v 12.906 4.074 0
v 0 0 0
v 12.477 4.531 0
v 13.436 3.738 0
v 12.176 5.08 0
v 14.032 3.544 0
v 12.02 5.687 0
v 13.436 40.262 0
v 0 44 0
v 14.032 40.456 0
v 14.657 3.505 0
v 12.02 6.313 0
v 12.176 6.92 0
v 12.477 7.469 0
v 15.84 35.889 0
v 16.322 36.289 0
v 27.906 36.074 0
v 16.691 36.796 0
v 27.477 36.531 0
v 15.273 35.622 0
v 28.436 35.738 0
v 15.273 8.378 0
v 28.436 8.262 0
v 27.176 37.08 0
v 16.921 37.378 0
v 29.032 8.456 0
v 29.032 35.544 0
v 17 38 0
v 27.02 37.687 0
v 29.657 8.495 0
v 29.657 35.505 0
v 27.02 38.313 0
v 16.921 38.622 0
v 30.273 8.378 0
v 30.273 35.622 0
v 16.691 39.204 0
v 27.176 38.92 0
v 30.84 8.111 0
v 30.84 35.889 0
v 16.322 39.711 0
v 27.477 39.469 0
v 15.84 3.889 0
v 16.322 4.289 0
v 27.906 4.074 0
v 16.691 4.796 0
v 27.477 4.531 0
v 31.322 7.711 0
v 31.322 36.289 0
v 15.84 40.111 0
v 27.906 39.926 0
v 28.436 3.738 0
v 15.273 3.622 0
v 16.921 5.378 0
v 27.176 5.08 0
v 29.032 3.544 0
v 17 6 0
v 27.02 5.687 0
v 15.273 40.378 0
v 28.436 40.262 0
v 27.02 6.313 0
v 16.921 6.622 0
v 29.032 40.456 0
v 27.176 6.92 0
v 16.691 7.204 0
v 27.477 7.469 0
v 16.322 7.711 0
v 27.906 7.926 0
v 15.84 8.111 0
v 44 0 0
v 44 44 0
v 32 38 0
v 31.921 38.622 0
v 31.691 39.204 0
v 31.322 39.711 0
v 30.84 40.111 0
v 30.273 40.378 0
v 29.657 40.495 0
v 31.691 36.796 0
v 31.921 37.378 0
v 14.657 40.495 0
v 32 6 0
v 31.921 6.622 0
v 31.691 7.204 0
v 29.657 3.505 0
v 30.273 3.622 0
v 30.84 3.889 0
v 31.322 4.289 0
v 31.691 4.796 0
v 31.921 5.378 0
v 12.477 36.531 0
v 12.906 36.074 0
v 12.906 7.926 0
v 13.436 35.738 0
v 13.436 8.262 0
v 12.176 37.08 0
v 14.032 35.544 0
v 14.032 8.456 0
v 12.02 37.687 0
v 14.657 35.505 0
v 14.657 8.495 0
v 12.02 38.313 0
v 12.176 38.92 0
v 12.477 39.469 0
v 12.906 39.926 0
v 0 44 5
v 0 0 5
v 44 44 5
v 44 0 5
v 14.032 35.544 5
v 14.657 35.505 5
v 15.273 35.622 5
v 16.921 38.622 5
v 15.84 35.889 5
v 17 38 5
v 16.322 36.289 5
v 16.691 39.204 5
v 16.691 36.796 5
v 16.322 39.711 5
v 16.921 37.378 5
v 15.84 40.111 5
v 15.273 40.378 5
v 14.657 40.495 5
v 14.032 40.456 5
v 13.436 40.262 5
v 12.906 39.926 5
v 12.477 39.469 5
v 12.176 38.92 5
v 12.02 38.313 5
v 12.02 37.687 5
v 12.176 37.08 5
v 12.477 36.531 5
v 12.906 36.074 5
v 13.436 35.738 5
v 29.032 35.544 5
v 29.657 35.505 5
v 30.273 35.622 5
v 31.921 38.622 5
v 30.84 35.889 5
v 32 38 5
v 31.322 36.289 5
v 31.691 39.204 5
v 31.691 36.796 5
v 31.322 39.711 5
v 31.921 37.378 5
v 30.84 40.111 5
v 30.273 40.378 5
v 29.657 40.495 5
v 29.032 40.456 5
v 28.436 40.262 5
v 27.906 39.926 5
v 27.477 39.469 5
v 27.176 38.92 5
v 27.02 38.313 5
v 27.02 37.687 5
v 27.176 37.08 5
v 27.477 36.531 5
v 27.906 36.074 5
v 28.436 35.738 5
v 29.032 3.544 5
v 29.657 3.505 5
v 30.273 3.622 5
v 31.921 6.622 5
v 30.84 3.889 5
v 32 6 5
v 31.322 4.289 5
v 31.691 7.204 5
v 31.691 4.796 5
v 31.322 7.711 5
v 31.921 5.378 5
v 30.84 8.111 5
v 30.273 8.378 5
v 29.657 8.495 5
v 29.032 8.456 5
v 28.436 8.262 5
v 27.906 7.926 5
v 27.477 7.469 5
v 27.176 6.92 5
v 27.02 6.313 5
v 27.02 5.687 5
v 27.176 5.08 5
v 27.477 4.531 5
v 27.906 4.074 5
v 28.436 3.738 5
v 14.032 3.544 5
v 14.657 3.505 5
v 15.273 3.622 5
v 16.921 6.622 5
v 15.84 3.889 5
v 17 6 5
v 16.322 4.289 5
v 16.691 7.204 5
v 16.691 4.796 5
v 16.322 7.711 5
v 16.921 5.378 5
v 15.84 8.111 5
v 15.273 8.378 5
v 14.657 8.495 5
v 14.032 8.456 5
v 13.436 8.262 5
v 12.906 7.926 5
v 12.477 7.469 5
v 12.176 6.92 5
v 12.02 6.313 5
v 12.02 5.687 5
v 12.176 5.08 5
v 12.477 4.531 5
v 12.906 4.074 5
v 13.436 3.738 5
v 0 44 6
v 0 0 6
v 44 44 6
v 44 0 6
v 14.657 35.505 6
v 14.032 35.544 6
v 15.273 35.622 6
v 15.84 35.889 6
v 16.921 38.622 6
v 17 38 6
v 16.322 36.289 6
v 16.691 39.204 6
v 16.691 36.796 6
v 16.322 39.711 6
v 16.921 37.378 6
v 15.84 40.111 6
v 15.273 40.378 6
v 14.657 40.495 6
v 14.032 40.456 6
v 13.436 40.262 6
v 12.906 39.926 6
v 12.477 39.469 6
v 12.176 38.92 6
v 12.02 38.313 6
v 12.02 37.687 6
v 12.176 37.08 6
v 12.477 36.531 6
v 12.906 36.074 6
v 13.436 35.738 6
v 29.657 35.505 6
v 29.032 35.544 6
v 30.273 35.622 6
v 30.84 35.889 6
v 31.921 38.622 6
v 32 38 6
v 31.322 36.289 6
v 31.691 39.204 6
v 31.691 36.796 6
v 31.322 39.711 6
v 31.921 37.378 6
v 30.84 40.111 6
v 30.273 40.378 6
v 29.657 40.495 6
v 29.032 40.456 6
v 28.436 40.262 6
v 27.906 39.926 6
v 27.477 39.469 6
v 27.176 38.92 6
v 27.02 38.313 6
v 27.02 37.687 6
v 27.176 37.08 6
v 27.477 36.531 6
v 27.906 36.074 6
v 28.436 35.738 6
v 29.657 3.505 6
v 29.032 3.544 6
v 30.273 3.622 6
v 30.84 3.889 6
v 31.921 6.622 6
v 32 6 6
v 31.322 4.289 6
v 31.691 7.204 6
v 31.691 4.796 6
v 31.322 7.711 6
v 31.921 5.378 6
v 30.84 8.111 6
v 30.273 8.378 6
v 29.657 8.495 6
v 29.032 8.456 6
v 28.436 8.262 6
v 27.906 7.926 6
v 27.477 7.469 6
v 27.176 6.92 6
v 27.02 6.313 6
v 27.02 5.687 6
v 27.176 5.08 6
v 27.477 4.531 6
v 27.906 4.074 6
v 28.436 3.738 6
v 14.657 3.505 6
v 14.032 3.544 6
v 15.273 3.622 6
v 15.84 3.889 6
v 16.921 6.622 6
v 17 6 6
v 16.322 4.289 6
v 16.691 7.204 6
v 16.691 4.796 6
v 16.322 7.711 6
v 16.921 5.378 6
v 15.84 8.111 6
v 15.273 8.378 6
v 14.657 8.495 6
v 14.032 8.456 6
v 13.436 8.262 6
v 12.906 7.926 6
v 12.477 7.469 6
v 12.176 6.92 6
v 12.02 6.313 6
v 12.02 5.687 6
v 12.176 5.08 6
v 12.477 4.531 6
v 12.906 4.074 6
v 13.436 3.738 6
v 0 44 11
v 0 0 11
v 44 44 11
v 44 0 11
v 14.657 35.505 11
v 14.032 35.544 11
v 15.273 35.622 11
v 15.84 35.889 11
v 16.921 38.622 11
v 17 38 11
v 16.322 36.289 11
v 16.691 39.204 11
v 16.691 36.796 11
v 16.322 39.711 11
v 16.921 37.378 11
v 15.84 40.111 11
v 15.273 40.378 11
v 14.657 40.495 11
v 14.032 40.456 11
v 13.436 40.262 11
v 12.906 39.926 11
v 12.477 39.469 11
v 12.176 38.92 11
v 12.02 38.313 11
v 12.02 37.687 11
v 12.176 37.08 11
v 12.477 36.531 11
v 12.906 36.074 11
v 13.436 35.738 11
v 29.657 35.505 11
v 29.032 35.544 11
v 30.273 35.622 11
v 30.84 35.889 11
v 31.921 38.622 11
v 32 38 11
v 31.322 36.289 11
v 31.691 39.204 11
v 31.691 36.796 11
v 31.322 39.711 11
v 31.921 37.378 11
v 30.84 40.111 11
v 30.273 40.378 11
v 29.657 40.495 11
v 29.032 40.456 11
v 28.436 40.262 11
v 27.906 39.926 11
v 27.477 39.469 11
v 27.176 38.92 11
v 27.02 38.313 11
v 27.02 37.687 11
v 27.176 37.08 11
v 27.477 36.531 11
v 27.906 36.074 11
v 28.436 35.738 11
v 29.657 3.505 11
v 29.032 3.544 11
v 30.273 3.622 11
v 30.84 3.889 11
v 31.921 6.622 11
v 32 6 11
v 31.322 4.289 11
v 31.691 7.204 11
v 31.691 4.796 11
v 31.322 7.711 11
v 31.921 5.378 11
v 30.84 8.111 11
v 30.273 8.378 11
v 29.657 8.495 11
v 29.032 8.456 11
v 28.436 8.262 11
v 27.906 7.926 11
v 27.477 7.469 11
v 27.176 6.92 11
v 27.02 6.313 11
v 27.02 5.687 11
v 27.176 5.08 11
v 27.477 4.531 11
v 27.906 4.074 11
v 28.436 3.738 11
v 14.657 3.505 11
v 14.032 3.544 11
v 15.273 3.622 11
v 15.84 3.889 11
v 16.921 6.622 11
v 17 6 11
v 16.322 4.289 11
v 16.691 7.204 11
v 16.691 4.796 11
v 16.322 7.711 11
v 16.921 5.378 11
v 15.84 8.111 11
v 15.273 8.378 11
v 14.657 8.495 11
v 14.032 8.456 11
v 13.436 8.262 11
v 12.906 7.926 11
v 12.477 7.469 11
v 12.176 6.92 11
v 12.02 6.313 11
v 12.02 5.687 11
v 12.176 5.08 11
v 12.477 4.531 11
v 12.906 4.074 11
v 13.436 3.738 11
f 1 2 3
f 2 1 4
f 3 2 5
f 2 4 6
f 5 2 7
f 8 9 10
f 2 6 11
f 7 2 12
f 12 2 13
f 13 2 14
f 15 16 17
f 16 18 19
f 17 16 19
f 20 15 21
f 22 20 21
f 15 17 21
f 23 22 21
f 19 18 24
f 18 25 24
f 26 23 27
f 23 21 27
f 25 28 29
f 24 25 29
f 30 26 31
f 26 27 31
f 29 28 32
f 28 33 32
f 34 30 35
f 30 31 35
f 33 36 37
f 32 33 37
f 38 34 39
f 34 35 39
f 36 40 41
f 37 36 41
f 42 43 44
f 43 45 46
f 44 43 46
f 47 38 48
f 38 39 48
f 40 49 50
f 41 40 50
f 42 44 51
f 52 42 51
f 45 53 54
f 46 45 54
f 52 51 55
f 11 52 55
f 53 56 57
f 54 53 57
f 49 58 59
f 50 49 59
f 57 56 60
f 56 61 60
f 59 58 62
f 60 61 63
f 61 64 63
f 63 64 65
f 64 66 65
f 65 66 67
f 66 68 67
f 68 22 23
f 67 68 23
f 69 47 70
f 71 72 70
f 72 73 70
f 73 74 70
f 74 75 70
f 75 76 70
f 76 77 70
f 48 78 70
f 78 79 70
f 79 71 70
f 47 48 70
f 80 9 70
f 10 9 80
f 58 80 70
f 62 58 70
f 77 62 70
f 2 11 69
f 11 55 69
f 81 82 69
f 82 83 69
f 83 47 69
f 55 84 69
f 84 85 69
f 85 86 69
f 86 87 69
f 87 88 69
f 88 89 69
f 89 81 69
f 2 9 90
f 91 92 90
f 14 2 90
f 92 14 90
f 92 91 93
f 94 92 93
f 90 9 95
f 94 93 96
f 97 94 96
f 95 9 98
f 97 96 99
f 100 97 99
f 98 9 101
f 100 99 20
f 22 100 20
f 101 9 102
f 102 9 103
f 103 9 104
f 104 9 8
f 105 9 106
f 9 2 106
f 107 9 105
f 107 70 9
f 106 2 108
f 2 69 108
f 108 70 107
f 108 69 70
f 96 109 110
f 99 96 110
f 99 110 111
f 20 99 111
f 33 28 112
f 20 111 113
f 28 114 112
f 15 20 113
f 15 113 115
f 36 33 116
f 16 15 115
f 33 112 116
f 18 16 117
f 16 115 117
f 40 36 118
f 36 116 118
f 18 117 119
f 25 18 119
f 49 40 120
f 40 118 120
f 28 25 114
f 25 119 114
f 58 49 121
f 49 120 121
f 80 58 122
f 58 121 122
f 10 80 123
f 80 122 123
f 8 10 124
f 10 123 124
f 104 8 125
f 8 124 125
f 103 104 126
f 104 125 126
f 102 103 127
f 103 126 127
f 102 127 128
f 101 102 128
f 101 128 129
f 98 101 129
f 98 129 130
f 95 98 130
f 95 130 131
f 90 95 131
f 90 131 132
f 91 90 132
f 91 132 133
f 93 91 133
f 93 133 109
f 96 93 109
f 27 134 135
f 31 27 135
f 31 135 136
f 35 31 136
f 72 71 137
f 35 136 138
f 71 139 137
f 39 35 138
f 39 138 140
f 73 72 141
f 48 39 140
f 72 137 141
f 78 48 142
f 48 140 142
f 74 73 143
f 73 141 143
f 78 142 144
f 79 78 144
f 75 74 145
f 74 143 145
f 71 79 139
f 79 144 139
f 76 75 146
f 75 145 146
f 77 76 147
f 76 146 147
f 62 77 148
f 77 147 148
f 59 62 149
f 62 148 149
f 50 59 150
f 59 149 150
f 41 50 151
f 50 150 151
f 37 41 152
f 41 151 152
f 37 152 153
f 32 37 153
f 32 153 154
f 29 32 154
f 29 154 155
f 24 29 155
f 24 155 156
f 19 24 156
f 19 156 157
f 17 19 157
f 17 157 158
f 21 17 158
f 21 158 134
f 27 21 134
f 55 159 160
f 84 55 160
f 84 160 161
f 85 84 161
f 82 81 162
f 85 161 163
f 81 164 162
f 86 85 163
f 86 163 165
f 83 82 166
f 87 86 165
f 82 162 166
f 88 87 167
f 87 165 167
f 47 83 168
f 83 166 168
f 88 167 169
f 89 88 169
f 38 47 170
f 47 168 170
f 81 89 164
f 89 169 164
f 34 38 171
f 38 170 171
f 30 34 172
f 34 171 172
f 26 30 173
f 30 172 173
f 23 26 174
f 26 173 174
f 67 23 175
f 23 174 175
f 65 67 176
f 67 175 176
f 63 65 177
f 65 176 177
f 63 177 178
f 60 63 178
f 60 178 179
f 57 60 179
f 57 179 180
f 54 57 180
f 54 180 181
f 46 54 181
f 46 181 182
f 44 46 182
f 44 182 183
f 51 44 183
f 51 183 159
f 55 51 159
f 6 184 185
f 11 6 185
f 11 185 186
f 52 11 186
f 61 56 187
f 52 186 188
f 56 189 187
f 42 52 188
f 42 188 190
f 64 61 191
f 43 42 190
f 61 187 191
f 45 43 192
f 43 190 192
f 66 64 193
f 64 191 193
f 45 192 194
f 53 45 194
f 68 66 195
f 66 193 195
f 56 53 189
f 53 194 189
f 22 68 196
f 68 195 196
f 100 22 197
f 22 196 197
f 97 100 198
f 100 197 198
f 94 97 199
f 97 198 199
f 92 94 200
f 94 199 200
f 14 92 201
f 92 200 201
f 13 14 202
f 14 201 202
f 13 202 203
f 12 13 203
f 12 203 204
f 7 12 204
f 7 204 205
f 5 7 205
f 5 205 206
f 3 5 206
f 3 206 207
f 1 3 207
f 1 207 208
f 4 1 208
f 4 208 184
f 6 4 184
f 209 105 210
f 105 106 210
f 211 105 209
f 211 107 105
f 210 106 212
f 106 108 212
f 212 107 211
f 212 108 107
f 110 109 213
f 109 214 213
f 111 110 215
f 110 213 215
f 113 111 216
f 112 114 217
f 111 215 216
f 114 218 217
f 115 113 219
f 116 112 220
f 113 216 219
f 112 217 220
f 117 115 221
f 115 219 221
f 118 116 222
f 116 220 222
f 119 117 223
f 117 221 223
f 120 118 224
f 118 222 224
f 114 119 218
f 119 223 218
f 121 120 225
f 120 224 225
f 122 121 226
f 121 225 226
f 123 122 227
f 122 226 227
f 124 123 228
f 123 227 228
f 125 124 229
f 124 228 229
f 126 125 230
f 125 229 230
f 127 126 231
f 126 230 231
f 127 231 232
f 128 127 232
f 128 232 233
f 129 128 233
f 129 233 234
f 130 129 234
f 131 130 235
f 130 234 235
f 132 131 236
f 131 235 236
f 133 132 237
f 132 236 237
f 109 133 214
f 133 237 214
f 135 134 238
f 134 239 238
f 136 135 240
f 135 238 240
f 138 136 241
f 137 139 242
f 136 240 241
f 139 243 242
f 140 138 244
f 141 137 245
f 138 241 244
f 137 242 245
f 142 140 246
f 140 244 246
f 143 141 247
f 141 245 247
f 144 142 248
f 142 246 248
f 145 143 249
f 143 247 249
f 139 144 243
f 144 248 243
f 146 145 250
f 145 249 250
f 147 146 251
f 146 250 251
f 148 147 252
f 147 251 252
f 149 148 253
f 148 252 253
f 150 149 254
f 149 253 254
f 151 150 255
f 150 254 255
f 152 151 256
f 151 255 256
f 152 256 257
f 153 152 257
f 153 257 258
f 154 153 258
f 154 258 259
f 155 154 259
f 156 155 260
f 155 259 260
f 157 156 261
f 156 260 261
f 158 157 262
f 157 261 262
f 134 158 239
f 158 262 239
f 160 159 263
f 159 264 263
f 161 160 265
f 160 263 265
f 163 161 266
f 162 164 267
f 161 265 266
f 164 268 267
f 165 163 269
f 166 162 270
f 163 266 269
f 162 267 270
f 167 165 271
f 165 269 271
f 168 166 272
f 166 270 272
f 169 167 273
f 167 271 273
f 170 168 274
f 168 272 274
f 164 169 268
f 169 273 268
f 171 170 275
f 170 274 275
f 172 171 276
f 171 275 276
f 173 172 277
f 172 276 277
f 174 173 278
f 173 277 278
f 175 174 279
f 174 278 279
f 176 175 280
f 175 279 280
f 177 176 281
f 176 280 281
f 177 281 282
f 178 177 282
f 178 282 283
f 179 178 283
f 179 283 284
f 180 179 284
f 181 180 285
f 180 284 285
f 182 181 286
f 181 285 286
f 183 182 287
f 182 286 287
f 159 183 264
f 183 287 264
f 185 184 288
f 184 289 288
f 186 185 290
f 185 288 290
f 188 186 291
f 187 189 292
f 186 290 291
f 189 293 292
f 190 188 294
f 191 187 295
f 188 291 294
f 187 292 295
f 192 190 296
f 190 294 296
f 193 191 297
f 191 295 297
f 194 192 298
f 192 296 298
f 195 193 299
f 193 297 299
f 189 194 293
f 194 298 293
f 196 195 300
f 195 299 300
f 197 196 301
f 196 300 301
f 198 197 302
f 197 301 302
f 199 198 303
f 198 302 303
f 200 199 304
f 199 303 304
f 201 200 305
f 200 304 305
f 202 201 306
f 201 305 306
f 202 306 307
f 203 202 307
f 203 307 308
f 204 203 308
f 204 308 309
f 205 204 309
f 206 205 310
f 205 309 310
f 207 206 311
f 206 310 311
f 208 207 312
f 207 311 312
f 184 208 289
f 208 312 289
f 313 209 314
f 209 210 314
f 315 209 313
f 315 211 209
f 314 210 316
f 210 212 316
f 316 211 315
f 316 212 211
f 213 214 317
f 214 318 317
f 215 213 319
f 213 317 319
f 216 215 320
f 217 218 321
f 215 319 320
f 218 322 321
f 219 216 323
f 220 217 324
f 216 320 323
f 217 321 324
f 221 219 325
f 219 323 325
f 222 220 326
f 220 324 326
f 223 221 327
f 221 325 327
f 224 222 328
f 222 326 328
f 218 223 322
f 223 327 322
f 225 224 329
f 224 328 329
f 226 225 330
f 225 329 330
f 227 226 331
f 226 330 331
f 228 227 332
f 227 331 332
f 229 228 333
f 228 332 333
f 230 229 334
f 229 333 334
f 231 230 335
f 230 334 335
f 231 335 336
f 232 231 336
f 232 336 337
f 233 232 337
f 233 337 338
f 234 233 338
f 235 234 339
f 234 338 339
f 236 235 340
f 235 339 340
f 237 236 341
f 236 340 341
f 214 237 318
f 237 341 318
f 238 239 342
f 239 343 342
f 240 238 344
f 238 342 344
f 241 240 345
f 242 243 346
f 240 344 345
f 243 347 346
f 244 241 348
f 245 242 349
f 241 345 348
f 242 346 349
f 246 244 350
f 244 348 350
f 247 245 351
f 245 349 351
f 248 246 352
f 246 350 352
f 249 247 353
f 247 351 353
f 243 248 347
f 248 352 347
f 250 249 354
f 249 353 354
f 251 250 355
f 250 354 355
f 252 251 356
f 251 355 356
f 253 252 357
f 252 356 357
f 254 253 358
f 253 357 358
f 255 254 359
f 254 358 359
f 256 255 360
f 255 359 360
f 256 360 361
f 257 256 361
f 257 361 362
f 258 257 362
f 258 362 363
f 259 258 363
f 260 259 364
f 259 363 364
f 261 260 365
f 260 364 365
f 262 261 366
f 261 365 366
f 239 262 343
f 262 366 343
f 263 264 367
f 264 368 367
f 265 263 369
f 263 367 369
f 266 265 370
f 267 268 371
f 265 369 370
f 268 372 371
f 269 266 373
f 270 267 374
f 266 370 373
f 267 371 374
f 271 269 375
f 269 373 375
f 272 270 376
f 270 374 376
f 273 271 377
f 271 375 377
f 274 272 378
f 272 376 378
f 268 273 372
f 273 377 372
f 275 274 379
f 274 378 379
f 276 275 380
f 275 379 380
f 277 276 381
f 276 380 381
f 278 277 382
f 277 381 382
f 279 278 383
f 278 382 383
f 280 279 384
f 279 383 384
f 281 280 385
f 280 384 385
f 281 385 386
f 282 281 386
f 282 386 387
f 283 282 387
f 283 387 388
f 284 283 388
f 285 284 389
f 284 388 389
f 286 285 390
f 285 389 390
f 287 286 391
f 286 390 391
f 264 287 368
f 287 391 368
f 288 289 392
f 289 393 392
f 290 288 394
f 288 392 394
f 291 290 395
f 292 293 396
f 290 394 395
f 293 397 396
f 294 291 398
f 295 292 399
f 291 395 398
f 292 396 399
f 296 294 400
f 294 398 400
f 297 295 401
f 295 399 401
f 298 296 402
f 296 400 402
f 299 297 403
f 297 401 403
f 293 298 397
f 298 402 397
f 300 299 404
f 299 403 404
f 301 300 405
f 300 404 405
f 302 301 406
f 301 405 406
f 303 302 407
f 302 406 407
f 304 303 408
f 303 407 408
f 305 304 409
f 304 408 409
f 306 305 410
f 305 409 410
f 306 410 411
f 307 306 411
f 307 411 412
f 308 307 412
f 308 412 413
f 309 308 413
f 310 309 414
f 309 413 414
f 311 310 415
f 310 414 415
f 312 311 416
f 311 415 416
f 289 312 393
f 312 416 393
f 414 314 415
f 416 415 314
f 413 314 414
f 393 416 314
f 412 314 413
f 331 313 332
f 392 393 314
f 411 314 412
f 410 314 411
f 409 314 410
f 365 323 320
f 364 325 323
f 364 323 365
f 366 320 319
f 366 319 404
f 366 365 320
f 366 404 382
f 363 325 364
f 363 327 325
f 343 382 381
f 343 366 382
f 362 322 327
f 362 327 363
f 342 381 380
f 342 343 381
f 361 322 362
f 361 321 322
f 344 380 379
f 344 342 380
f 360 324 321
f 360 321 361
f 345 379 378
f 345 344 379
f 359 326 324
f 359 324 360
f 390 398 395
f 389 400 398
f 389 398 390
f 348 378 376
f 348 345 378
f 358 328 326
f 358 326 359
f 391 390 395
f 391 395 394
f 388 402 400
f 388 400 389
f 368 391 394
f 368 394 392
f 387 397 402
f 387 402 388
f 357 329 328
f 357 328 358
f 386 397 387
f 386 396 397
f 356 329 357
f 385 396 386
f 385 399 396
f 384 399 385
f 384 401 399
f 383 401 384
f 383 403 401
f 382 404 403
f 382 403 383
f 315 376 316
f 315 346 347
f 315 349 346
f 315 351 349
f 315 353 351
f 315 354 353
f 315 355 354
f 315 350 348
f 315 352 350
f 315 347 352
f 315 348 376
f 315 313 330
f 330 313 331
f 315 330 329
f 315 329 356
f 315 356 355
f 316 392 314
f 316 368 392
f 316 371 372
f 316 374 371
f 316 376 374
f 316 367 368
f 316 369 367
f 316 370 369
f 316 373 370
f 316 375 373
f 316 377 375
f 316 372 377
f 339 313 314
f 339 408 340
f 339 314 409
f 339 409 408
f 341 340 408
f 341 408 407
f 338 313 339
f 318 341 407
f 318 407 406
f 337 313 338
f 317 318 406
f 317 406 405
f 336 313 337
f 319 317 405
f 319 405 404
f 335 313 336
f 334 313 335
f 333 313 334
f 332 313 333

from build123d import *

# Parameters (mm, degrees)
CYLINDER006_R     = 2.5
CYLINDER006_DEPTH = 10
CYLINDER007_R     = 2.5
CYLINDER007_DEPTH = 10
CYLINDER005_R     = 2.5
CYLINDER005_DEPTH = 10
CYLINDER004_R     = 2.5
CYLINDER004_DEPTH = 10
BOX001_W          = 44
BOX001_H          = 44
BOX001_DEPTH      = 6
CYLINDER002_R     = 2.5
CYLINDER002_DEPTH = 10
CYLINDER003_R     = 2.5
CYLINDER003_DEPTH = 10
CYLINDER001_R     = 2.5
CYLINDER001_DEPTH = 10
CYLINDER_R        = 2.5
CYLINDER_DEPTH    = 10
BOX_W             = 44
BOX_H             = 44
BOX_DEPTH         = 6


with BuildPart() as cylinder006:
    # Cylinder006 → Cylinder006 (new body)
    with BuildSketch(Plane(origin=(14.5, 38, 0), x_dir=(1, 0, 0), z_dir=(0, 0, 1))):
        Circle(CYLINDER006_R)
    extrude(amount=CYLINDER006_DEPTH)


with BuildPart() as cylinder007:
    # Cylinder007 → Cylinder007 (new body)
    with BuildSketch(Plane(origin=(29.5, 38, 0), x_dir=(1, 0, 0), z_dir=(0, 0, 1))):
        Circle(CYLINDER007_R)
    extrude(amount=CYLINDER007_DEPTH)


with BuildPart() as cylinder005:
    # Cylinder005 → Cylinder005 (new body)
    with BuildSketch(Plane(origin=(29.5, 6, 0), x_dir=(1, 0, 0), z_dir=(0, 0, 1))):
        Circle(CYLINDER005_R)
    extrude(amount=CYLINDER005_DEPTH)


with BuildPart() as cylinder004:
    # Cylinder004 → Cylinder004 (new body)
    with BuildSketch(Plane(origin=(14.5, 6, 0), x_dir=(1, 0, 0), z_dir=(0, 0, 1))):
        Circle(CYLINDER004_R)
    extrude(amount=CYLINDER004_DEPTH)


with BuildPart() as cut007:
    # Box001 → Box001 (new body)
    with BuildSketch(Plane.XY):
        with Locations((22, 22)):
            Rectangle(BOX001_W, BOX001_H)
    extrude(amount=BOX001_DEPTH)

    # Cut004: cut Cylinder004
    add(cylinder004.part, mode=Mode.SUBTRACT)

    # Cut005: cut Cylinder005
    add(cylinder005.part, mode=Mode.SUBTRACT)

    # Cut006: cut Cylinder007
    add(cylinder007.part, mode=Mode.SUBTRACT)

    # Cut007: cut Cylinder006
    add(cylinder006.part, mode=Mode.SUBTRACT)


with BuildPart() as cut007_1:
    # Cut007 placement: moved
    add(cut007.part.moved(Location((0, 0, 5))))


with BuildPart() as cylinder002:
    # Cylinder002 → Cylinder002 (new body)
    with BuildSketch(Plane(origin=(14.5, 38, 0), x_dir=(1, 0, 0), z_dir=(0, 0, 1))):
        Circle(CYLINDER002_R)
    extrude(amount=CYLINDER002_DEPTH)


with BuildPart() as cylinder003:
    # Cylinder003 → Cylinder003 (new body)
    with BuildSketch(Plane(origin=(29.5, 38, 0), x_dir=(1, 0, 0), z_dir=(0, 0, 1))):
        Circle(CYLINDER003_R)
    extrude(amount=CYLINDER003_DEPTH)


with BuildPart() as cylinder001:
    # Cylinder001 → Cylinder001 (new body)
    with BuildSketch(Plane(origin=(29.5, 6, 0), x_dir=(1, 0, 0), z_dir=(0, 0, 1))):
        Circle(CYLINDER001_R)
    extrude(amount=CYLINDER001_DEPTH)


with BuildPart() as cylinder:
    # Cylinder → Cylinder (new body)
    with BuildSketch(Plane(origin=(14.5, 6, 0), x_dir=(1, 0, 0), z_dir=(0, 0, 1))):
        Circle(CYLINDER_R)
    extrude(amount=CYLINDER_DEPTH)


with BuildPart() as fusion:
    # Box → Box (new body)
    with BuildSketch(Plane.XY):
        with Locations((22, 22)):
            Rectangle(BOX_W, BOX_H)
    extrude(amount=BOX_DEPTH)

    # Cut: cut Cylinder
    add(cylinder.part, mode=Mode.SUBTRACT)

    # Cut001: cut Cylinder001
    add(cylinder001.part, mode=Mode.SUBTRACT)

    # Cut002: cut Cylinder003
    add(cylinder003.part, mode=Mode.SUBTRACT)

    # Cut003: cut Cylinder002
    add(cylinder002.part, mode=Mode.SUBTRACT)

    # Fusion: union Cut007
    add(cut007_1.part)


solid = fusion.part
